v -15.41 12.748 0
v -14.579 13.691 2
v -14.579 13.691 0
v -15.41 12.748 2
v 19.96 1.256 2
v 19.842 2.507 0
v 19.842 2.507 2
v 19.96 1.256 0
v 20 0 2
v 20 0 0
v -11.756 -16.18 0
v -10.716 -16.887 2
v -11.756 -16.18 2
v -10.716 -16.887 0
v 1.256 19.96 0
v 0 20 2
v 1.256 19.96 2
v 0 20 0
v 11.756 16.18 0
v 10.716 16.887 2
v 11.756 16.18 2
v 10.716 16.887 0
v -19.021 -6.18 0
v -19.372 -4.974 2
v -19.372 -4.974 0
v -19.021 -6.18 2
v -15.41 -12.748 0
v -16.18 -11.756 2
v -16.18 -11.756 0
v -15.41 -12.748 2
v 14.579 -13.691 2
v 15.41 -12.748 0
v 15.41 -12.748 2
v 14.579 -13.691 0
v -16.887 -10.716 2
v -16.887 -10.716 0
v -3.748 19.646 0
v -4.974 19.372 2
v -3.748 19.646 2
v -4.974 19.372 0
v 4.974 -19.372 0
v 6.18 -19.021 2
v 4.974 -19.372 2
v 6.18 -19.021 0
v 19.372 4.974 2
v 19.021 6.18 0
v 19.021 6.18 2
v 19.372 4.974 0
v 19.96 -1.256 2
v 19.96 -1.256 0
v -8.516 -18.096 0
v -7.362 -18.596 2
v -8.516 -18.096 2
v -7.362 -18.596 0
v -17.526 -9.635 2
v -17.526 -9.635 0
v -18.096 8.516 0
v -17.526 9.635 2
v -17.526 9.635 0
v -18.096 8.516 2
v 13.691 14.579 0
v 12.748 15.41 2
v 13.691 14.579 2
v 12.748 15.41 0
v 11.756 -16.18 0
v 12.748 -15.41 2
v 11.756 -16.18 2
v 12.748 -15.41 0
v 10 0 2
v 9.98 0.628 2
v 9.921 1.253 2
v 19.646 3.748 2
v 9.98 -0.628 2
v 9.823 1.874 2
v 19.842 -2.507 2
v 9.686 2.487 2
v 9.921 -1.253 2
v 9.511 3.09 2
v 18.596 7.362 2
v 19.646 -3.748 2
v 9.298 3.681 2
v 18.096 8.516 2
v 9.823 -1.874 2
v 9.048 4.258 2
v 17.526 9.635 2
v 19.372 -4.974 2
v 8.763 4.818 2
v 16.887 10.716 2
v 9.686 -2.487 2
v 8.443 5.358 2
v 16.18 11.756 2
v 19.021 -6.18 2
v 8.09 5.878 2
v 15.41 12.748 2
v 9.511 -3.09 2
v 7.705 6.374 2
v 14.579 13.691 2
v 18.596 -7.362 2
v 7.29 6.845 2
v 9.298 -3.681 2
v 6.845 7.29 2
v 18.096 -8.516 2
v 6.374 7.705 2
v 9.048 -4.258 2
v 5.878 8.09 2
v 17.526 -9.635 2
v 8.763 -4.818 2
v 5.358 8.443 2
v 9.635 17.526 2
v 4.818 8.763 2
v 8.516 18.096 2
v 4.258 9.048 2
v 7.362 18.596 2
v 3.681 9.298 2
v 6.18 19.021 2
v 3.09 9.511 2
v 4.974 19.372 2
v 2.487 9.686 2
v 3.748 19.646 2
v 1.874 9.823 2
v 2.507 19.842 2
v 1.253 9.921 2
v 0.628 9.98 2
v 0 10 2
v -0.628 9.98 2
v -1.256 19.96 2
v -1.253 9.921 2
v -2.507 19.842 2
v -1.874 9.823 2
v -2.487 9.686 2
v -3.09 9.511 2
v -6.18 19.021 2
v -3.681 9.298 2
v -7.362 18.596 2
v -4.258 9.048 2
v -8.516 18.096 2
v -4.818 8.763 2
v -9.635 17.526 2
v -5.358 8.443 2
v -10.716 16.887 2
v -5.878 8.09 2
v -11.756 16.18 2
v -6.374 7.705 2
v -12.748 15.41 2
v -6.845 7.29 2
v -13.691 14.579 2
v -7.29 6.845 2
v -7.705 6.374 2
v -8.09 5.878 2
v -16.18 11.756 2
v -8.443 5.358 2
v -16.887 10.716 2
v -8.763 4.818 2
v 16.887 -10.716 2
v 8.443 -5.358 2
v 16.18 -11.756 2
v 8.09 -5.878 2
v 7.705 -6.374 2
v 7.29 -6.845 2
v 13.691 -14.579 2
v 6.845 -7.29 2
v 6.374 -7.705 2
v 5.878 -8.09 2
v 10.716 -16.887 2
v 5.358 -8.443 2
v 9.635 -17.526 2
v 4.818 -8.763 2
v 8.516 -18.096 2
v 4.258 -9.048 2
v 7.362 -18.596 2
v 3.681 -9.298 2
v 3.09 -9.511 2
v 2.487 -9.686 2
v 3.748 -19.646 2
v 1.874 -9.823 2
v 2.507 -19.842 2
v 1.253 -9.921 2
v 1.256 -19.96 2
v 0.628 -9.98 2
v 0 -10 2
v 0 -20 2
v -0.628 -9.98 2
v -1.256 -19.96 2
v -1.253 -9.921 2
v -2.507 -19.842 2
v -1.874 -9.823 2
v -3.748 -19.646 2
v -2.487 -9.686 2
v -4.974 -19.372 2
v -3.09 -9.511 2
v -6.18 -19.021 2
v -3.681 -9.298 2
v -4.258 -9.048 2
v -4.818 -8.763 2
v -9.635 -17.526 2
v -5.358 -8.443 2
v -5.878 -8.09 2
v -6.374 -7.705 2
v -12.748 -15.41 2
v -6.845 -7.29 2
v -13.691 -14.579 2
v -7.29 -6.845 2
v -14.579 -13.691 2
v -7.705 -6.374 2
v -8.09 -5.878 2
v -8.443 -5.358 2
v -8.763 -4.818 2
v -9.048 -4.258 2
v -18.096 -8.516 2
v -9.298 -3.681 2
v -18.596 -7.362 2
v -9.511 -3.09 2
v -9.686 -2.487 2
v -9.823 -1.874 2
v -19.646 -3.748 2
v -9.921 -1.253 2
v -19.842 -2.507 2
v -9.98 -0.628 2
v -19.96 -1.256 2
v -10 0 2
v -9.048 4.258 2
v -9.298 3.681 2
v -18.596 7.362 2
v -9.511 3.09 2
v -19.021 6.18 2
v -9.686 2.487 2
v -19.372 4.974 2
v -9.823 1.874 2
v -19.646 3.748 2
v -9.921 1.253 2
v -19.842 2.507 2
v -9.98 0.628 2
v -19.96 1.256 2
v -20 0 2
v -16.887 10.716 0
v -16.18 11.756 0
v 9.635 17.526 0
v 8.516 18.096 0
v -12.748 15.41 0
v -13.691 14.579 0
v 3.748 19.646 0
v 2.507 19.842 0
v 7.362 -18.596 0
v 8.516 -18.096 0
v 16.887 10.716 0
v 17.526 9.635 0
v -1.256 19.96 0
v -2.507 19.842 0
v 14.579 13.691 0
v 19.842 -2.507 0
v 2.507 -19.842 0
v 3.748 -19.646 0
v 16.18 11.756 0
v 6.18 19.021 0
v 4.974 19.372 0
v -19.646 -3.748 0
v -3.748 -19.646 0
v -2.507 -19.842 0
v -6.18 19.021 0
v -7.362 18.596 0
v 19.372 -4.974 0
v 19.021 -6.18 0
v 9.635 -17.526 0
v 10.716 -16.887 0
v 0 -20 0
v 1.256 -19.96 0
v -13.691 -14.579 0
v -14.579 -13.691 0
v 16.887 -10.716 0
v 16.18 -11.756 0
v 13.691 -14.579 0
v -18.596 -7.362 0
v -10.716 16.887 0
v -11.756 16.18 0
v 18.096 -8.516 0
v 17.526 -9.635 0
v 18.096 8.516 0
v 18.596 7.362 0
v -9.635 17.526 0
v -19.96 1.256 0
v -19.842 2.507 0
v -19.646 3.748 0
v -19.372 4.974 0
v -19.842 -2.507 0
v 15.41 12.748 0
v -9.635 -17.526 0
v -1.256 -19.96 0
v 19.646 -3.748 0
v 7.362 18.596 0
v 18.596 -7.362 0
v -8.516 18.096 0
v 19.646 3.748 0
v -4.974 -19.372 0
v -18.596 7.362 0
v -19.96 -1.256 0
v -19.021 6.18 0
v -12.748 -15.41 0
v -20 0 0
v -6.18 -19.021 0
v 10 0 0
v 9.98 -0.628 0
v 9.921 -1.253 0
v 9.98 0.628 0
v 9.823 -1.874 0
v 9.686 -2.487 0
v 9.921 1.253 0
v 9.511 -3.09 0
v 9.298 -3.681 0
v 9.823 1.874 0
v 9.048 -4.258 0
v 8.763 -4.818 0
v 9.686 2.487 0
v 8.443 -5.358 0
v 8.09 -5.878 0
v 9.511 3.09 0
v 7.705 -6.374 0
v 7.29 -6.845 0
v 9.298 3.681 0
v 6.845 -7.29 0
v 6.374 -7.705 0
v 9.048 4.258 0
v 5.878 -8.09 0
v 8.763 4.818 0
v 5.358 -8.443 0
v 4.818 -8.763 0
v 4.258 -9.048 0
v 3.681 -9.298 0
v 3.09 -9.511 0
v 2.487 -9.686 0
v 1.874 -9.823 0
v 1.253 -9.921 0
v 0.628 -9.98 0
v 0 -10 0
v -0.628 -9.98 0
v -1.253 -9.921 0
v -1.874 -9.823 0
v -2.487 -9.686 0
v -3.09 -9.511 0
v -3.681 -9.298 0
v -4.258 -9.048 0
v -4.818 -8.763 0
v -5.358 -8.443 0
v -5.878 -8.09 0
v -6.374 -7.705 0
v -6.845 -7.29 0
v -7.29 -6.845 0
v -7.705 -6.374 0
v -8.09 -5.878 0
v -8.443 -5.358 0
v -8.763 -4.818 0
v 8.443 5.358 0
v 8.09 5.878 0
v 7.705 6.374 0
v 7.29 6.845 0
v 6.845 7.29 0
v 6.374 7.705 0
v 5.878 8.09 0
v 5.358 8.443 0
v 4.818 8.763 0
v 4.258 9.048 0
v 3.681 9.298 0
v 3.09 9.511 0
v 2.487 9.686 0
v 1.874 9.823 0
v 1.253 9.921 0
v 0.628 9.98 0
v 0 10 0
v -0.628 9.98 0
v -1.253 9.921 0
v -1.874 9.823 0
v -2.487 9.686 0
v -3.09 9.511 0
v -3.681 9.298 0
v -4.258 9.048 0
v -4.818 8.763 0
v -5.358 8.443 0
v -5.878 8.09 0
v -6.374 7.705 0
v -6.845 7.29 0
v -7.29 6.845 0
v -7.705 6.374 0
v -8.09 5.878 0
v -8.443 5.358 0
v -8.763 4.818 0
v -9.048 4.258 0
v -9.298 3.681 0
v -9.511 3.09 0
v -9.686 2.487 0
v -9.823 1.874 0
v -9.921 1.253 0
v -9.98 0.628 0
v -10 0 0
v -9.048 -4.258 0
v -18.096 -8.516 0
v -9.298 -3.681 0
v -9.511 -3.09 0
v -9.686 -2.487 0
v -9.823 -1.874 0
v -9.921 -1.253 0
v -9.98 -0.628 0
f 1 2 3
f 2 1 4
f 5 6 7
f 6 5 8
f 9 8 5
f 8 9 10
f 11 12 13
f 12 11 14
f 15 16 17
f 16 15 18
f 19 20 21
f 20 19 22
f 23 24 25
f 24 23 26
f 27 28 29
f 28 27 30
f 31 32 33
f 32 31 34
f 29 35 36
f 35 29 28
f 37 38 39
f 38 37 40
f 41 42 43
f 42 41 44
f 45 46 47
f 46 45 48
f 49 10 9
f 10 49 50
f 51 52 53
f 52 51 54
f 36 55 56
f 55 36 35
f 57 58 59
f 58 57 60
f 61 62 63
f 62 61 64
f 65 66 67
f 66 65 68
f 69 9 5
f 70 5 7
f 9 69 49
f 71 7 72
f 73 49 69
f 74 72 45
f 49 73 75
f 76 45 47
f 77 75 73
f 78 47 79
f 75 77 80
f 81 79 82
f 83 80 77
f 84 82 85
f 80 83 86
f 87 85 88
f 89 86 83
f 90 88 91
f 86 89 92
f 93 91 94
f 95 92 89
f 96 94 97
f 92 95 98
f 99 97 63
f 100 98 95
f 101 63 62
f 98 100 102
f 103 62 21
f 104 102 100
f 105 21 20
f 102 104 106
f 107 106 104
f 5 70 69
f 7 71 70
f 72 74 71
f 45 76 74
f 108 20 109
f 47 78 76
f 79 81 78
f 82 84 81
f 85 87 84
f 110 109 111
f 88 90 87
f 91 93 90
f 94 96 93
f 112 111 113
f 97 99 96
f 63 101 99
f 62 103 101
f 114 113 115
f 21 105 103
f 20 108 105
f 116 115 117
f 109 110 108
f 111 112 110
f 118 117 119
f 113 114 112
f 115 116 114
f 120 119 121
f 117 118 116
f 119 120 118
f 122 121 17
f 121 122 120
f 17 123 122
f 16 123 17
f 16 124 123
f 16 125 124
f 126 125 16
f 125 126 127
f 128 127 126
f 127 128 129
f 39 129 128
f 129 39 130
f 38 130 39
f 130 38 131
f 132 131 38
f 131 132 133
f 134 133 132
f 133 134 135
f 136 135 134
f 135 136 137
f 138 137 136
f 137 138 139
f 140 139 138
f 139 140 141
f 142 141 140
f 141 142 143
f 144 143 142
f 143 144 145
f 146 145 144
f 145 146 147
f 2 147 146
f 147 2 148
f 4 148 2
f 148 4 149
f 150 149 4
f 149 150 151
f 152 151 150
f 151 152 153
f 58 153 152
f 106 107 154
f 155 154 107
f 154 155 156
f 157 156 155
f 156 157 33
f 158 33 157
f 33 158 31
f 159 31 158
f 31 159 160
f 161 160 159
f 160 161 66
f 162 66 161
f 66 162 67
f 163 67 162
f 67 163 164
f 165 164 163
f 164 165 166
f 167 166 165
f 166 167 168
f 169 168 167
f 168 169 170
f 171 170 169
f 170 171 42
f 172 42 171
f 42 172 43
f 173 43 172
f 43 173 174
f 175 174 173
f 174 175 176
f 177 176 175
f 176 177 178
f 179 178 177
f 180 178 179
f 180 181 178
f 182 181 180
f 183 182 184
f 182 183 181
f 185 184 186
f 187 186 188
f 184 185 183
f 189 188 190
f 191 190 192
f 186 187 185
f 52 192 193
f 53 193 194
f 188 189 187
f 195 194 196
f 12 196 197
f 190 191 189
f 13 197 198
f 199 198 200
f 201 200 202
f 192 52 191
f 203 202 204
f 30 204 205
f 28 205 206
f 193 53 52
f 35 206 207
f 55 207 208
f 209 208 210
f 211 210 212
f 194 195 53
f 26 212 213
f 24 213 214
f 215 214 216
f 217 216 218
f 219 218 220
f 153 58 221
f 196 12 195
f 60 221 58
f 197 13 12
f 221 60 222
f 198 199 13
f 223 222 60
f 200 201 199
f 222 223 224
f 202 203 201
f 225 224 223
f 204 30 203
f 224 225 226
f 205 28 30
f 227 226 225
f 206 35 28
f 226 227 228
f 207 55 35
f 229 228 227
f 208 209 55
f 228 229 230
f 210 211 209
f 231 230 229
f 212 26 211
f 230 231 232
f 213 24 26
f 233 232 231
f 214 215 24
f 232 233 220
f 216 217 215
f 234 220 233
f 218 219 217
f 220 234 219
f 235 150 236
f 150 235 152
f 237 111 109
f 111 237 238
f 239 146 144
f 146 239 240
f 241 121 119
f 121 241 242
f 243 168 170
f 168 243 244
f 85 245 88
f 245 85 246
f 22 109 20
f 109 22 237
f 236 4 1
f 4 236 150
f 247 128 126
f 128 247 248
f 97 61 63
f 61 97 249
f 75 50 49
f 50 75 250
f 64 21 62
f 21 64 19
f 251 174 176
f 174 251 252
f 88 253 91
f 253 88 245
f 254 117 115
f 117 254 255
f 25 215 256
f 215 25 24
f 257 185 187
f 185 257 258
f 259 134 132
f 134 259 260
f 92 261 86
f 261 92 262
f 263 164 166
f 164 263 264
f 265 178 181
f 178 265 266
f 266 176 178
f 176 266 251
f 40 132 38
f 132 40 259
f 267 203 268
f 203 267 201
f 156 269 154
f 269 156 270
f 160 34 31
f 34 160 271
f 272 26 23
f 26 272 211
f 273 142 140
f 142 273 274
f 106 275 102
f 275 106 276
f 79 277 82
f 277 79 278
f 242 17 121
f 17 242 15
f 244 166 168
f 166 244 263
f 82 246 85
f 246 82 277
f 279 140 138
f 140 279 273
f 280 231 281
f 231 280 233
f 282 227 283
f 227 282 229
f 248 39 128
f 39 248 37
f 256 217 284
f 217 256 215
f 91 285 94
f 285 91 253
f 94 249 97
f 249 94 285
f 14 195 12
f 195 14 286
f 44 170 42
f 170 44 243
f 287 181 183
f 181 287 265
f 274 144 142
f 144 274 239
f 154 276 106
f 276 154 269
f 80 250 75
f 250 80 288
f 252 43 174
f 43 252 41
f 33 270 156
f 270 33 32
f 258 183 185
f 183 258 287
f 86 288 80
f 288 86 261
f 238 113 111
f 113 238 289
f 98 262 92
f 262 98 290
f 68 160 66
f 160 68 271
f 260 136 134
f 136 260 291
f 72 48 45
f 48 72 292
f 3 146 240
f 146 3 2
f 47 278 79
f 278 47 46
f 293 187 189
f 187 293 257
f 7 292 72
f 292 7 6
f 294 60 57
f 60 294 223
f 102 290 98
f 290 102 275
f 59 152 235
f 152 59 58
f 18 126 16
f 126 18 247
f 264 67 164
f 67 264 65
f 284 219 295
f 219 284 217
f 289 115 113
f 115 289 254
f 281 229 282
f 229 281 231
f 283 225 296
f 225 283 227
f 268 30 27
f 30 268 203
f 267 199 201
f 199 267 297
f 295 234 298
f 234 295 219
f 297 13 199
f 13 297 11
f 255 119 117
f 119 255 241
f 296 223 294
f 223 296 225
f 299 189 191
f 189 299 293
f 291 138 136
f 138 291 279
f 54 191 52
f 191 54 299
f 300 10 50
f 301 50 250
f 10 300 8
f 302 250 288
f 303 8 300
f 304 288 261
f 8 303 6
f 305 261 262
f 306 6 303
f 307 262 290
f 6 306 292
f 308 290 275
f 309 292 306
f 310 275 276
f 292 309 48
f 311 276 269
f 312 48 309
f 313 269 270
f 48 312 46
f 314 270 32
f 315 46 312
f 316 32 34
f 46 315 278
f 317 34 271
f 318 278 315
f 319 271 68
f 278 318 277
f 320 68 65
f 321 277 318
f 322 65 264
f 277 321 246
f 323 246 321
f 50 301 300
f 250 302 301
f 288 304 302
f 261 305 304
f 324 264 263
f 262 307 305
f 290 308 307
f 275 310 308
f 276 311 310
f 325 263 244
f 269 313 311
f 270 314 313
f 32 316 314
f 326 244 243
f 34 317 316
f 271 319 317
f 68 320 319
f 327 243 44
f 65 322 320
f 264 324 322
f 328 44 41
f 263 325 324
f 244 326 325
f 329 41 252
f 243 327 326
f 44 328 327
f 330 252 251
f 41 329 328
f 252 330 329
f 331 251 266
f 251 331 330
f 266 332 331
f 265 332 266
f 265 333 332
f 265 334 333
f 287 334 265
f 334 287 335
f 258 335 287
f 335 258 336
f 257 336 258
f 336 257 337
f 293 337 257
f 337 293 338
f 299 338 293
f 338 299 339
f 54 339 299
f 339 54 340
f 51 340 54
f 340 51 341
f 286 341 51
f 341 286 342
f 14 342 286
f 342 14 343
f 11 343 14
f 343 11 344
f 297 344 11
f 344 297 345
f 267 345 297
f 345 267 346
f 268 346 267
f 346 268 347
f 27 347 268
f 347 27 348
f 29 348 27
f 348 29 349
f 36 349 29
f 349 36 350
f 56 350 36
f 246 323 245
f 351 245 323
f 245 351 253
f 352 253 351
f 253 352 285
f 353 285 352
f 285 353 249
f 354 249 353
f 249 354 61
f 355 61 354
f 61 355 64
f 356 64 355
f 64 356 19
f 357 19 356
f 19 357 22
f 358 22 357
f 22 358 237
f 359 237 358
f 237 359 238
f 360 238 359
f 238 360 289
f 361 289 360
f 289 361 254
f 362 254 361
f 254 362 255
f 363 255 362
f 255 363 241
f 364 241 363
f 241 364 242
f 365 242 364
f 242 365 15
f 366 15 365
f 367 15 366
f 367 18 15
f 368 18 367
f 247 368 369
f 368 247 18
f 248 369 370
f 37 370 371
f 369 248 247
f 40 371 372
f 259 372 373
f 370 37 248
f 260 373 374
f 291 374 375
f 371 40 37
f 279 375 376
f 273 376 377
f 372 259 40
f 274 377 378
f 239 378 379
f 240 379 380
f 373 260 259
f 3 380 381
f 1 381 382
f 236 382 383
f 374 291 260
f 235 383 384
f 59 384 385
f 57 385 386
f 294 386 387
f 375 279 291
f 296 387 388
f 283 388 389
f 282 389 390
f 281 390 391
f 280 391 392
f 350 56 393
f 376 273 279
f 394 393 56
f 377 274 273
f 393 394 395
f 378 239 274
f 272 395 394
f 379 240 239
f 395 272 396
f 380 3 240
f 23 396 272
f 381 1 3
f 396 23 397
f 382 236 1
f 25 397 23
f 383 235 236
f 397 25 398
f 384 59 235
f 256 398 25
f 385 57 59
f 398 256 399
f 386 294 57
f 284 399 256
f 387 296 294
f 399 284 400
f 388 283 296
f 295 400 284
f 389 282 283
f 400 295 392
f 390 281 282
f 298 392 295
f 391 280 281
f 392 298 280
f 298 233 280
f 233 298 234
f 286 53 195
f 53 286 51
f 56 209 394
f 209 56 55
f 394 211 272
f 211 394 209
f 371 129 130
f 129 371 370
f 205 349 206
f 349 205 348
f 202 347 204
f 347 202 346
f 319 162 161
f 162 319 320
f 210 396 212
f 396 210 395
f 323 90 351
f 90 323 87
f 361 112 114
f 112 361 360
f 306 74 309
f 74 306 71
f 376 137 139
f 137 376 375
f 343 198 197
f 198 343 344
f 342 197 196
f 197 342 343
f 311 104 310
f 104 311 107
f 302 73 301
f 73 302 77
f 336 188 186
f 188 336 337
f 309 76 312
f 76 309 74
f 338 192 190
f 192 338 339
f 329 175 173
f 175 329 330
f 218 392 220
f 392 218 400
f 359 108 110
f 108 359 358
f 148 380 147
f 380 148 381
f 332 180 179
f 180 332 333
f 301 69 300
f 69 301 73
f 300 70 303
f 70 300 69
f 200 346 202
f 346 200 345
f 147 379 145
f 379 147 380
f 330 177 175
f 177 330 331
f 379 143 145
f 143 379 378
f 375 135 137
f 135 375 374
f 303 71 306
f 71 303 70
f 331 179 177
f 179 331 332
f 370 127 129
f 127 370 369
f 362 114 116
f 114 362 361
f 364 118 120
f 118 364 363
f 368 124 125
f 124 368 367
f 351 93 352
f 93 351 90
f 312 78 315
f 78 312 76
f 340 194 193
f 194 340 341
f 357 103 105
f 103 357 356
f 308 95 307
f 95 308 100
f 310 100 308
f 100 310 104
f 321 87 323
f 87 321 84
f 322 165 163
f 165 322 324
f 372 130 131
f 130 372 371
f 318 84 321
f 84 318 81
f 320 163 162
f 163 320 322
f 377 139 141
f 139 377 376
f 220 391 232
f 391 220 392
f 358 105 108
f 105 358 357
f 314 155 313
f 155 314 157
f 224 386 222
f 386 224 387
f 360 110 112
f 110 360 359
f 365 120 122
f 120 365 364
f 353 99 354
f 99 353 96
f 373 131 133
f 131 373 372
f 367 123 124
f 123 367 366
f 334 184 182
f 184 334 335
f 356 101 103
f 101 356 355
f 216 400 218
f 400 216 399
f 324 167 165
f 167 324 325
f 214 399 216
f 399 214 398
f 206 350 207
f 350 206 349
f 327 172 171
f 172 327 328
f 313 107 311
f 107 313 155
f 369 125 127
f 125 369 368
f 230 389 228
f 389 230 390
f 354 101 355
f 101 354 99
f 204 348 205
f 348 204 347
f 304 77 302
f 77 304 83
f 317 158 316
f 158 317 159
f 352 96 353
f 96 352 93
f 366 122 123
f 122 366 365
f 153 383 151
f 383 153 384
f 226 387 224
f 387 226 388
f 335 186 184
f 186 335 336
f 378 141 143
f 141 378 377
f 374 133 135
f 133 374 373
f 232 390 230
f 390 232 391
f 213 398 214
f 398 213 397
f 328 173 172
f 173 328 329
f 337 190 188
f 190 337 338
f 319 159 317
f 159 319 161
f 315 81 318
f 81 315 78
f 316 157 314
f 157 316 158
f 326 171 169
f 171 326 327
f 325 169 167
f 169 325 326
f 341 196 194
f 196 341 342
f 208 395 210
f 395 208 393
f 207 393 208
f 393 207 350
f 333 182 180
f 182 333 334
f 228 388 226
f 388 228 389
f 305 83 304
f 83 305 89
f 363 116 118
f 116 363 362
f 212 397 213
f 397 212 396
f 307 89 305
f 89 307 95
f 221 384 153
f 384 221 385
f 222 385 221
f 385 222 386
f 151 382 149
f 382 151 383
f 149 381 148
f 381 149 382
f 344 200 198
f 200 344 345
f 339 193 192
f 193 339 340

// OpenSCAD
// Parameters for the spacer_ring
ring_outer_diameter = 40; // Outer diameter of the ring
ring_inner_diameter = 20; // Inner diameter of the ring
ring_thickness = 2;       // Adjusted thickness of the ring to match the original model

// Spacer Ring Module
module spacer_ring() {
    difference() {
        // Outer cylinder
        cylinder(h = ring_thickness, d = ring_outer_diameter, $fn = 100);
        // Inner cylinder (hole)
        translate([0, 0, -1]) // Slightly offset to ensure clean subtraction
        cylinder(h = ring_thickness + 2, d = ring_inner_diameter, $fn = 100);
    }
}

// Render the spacer_ring
spacer_ring();
